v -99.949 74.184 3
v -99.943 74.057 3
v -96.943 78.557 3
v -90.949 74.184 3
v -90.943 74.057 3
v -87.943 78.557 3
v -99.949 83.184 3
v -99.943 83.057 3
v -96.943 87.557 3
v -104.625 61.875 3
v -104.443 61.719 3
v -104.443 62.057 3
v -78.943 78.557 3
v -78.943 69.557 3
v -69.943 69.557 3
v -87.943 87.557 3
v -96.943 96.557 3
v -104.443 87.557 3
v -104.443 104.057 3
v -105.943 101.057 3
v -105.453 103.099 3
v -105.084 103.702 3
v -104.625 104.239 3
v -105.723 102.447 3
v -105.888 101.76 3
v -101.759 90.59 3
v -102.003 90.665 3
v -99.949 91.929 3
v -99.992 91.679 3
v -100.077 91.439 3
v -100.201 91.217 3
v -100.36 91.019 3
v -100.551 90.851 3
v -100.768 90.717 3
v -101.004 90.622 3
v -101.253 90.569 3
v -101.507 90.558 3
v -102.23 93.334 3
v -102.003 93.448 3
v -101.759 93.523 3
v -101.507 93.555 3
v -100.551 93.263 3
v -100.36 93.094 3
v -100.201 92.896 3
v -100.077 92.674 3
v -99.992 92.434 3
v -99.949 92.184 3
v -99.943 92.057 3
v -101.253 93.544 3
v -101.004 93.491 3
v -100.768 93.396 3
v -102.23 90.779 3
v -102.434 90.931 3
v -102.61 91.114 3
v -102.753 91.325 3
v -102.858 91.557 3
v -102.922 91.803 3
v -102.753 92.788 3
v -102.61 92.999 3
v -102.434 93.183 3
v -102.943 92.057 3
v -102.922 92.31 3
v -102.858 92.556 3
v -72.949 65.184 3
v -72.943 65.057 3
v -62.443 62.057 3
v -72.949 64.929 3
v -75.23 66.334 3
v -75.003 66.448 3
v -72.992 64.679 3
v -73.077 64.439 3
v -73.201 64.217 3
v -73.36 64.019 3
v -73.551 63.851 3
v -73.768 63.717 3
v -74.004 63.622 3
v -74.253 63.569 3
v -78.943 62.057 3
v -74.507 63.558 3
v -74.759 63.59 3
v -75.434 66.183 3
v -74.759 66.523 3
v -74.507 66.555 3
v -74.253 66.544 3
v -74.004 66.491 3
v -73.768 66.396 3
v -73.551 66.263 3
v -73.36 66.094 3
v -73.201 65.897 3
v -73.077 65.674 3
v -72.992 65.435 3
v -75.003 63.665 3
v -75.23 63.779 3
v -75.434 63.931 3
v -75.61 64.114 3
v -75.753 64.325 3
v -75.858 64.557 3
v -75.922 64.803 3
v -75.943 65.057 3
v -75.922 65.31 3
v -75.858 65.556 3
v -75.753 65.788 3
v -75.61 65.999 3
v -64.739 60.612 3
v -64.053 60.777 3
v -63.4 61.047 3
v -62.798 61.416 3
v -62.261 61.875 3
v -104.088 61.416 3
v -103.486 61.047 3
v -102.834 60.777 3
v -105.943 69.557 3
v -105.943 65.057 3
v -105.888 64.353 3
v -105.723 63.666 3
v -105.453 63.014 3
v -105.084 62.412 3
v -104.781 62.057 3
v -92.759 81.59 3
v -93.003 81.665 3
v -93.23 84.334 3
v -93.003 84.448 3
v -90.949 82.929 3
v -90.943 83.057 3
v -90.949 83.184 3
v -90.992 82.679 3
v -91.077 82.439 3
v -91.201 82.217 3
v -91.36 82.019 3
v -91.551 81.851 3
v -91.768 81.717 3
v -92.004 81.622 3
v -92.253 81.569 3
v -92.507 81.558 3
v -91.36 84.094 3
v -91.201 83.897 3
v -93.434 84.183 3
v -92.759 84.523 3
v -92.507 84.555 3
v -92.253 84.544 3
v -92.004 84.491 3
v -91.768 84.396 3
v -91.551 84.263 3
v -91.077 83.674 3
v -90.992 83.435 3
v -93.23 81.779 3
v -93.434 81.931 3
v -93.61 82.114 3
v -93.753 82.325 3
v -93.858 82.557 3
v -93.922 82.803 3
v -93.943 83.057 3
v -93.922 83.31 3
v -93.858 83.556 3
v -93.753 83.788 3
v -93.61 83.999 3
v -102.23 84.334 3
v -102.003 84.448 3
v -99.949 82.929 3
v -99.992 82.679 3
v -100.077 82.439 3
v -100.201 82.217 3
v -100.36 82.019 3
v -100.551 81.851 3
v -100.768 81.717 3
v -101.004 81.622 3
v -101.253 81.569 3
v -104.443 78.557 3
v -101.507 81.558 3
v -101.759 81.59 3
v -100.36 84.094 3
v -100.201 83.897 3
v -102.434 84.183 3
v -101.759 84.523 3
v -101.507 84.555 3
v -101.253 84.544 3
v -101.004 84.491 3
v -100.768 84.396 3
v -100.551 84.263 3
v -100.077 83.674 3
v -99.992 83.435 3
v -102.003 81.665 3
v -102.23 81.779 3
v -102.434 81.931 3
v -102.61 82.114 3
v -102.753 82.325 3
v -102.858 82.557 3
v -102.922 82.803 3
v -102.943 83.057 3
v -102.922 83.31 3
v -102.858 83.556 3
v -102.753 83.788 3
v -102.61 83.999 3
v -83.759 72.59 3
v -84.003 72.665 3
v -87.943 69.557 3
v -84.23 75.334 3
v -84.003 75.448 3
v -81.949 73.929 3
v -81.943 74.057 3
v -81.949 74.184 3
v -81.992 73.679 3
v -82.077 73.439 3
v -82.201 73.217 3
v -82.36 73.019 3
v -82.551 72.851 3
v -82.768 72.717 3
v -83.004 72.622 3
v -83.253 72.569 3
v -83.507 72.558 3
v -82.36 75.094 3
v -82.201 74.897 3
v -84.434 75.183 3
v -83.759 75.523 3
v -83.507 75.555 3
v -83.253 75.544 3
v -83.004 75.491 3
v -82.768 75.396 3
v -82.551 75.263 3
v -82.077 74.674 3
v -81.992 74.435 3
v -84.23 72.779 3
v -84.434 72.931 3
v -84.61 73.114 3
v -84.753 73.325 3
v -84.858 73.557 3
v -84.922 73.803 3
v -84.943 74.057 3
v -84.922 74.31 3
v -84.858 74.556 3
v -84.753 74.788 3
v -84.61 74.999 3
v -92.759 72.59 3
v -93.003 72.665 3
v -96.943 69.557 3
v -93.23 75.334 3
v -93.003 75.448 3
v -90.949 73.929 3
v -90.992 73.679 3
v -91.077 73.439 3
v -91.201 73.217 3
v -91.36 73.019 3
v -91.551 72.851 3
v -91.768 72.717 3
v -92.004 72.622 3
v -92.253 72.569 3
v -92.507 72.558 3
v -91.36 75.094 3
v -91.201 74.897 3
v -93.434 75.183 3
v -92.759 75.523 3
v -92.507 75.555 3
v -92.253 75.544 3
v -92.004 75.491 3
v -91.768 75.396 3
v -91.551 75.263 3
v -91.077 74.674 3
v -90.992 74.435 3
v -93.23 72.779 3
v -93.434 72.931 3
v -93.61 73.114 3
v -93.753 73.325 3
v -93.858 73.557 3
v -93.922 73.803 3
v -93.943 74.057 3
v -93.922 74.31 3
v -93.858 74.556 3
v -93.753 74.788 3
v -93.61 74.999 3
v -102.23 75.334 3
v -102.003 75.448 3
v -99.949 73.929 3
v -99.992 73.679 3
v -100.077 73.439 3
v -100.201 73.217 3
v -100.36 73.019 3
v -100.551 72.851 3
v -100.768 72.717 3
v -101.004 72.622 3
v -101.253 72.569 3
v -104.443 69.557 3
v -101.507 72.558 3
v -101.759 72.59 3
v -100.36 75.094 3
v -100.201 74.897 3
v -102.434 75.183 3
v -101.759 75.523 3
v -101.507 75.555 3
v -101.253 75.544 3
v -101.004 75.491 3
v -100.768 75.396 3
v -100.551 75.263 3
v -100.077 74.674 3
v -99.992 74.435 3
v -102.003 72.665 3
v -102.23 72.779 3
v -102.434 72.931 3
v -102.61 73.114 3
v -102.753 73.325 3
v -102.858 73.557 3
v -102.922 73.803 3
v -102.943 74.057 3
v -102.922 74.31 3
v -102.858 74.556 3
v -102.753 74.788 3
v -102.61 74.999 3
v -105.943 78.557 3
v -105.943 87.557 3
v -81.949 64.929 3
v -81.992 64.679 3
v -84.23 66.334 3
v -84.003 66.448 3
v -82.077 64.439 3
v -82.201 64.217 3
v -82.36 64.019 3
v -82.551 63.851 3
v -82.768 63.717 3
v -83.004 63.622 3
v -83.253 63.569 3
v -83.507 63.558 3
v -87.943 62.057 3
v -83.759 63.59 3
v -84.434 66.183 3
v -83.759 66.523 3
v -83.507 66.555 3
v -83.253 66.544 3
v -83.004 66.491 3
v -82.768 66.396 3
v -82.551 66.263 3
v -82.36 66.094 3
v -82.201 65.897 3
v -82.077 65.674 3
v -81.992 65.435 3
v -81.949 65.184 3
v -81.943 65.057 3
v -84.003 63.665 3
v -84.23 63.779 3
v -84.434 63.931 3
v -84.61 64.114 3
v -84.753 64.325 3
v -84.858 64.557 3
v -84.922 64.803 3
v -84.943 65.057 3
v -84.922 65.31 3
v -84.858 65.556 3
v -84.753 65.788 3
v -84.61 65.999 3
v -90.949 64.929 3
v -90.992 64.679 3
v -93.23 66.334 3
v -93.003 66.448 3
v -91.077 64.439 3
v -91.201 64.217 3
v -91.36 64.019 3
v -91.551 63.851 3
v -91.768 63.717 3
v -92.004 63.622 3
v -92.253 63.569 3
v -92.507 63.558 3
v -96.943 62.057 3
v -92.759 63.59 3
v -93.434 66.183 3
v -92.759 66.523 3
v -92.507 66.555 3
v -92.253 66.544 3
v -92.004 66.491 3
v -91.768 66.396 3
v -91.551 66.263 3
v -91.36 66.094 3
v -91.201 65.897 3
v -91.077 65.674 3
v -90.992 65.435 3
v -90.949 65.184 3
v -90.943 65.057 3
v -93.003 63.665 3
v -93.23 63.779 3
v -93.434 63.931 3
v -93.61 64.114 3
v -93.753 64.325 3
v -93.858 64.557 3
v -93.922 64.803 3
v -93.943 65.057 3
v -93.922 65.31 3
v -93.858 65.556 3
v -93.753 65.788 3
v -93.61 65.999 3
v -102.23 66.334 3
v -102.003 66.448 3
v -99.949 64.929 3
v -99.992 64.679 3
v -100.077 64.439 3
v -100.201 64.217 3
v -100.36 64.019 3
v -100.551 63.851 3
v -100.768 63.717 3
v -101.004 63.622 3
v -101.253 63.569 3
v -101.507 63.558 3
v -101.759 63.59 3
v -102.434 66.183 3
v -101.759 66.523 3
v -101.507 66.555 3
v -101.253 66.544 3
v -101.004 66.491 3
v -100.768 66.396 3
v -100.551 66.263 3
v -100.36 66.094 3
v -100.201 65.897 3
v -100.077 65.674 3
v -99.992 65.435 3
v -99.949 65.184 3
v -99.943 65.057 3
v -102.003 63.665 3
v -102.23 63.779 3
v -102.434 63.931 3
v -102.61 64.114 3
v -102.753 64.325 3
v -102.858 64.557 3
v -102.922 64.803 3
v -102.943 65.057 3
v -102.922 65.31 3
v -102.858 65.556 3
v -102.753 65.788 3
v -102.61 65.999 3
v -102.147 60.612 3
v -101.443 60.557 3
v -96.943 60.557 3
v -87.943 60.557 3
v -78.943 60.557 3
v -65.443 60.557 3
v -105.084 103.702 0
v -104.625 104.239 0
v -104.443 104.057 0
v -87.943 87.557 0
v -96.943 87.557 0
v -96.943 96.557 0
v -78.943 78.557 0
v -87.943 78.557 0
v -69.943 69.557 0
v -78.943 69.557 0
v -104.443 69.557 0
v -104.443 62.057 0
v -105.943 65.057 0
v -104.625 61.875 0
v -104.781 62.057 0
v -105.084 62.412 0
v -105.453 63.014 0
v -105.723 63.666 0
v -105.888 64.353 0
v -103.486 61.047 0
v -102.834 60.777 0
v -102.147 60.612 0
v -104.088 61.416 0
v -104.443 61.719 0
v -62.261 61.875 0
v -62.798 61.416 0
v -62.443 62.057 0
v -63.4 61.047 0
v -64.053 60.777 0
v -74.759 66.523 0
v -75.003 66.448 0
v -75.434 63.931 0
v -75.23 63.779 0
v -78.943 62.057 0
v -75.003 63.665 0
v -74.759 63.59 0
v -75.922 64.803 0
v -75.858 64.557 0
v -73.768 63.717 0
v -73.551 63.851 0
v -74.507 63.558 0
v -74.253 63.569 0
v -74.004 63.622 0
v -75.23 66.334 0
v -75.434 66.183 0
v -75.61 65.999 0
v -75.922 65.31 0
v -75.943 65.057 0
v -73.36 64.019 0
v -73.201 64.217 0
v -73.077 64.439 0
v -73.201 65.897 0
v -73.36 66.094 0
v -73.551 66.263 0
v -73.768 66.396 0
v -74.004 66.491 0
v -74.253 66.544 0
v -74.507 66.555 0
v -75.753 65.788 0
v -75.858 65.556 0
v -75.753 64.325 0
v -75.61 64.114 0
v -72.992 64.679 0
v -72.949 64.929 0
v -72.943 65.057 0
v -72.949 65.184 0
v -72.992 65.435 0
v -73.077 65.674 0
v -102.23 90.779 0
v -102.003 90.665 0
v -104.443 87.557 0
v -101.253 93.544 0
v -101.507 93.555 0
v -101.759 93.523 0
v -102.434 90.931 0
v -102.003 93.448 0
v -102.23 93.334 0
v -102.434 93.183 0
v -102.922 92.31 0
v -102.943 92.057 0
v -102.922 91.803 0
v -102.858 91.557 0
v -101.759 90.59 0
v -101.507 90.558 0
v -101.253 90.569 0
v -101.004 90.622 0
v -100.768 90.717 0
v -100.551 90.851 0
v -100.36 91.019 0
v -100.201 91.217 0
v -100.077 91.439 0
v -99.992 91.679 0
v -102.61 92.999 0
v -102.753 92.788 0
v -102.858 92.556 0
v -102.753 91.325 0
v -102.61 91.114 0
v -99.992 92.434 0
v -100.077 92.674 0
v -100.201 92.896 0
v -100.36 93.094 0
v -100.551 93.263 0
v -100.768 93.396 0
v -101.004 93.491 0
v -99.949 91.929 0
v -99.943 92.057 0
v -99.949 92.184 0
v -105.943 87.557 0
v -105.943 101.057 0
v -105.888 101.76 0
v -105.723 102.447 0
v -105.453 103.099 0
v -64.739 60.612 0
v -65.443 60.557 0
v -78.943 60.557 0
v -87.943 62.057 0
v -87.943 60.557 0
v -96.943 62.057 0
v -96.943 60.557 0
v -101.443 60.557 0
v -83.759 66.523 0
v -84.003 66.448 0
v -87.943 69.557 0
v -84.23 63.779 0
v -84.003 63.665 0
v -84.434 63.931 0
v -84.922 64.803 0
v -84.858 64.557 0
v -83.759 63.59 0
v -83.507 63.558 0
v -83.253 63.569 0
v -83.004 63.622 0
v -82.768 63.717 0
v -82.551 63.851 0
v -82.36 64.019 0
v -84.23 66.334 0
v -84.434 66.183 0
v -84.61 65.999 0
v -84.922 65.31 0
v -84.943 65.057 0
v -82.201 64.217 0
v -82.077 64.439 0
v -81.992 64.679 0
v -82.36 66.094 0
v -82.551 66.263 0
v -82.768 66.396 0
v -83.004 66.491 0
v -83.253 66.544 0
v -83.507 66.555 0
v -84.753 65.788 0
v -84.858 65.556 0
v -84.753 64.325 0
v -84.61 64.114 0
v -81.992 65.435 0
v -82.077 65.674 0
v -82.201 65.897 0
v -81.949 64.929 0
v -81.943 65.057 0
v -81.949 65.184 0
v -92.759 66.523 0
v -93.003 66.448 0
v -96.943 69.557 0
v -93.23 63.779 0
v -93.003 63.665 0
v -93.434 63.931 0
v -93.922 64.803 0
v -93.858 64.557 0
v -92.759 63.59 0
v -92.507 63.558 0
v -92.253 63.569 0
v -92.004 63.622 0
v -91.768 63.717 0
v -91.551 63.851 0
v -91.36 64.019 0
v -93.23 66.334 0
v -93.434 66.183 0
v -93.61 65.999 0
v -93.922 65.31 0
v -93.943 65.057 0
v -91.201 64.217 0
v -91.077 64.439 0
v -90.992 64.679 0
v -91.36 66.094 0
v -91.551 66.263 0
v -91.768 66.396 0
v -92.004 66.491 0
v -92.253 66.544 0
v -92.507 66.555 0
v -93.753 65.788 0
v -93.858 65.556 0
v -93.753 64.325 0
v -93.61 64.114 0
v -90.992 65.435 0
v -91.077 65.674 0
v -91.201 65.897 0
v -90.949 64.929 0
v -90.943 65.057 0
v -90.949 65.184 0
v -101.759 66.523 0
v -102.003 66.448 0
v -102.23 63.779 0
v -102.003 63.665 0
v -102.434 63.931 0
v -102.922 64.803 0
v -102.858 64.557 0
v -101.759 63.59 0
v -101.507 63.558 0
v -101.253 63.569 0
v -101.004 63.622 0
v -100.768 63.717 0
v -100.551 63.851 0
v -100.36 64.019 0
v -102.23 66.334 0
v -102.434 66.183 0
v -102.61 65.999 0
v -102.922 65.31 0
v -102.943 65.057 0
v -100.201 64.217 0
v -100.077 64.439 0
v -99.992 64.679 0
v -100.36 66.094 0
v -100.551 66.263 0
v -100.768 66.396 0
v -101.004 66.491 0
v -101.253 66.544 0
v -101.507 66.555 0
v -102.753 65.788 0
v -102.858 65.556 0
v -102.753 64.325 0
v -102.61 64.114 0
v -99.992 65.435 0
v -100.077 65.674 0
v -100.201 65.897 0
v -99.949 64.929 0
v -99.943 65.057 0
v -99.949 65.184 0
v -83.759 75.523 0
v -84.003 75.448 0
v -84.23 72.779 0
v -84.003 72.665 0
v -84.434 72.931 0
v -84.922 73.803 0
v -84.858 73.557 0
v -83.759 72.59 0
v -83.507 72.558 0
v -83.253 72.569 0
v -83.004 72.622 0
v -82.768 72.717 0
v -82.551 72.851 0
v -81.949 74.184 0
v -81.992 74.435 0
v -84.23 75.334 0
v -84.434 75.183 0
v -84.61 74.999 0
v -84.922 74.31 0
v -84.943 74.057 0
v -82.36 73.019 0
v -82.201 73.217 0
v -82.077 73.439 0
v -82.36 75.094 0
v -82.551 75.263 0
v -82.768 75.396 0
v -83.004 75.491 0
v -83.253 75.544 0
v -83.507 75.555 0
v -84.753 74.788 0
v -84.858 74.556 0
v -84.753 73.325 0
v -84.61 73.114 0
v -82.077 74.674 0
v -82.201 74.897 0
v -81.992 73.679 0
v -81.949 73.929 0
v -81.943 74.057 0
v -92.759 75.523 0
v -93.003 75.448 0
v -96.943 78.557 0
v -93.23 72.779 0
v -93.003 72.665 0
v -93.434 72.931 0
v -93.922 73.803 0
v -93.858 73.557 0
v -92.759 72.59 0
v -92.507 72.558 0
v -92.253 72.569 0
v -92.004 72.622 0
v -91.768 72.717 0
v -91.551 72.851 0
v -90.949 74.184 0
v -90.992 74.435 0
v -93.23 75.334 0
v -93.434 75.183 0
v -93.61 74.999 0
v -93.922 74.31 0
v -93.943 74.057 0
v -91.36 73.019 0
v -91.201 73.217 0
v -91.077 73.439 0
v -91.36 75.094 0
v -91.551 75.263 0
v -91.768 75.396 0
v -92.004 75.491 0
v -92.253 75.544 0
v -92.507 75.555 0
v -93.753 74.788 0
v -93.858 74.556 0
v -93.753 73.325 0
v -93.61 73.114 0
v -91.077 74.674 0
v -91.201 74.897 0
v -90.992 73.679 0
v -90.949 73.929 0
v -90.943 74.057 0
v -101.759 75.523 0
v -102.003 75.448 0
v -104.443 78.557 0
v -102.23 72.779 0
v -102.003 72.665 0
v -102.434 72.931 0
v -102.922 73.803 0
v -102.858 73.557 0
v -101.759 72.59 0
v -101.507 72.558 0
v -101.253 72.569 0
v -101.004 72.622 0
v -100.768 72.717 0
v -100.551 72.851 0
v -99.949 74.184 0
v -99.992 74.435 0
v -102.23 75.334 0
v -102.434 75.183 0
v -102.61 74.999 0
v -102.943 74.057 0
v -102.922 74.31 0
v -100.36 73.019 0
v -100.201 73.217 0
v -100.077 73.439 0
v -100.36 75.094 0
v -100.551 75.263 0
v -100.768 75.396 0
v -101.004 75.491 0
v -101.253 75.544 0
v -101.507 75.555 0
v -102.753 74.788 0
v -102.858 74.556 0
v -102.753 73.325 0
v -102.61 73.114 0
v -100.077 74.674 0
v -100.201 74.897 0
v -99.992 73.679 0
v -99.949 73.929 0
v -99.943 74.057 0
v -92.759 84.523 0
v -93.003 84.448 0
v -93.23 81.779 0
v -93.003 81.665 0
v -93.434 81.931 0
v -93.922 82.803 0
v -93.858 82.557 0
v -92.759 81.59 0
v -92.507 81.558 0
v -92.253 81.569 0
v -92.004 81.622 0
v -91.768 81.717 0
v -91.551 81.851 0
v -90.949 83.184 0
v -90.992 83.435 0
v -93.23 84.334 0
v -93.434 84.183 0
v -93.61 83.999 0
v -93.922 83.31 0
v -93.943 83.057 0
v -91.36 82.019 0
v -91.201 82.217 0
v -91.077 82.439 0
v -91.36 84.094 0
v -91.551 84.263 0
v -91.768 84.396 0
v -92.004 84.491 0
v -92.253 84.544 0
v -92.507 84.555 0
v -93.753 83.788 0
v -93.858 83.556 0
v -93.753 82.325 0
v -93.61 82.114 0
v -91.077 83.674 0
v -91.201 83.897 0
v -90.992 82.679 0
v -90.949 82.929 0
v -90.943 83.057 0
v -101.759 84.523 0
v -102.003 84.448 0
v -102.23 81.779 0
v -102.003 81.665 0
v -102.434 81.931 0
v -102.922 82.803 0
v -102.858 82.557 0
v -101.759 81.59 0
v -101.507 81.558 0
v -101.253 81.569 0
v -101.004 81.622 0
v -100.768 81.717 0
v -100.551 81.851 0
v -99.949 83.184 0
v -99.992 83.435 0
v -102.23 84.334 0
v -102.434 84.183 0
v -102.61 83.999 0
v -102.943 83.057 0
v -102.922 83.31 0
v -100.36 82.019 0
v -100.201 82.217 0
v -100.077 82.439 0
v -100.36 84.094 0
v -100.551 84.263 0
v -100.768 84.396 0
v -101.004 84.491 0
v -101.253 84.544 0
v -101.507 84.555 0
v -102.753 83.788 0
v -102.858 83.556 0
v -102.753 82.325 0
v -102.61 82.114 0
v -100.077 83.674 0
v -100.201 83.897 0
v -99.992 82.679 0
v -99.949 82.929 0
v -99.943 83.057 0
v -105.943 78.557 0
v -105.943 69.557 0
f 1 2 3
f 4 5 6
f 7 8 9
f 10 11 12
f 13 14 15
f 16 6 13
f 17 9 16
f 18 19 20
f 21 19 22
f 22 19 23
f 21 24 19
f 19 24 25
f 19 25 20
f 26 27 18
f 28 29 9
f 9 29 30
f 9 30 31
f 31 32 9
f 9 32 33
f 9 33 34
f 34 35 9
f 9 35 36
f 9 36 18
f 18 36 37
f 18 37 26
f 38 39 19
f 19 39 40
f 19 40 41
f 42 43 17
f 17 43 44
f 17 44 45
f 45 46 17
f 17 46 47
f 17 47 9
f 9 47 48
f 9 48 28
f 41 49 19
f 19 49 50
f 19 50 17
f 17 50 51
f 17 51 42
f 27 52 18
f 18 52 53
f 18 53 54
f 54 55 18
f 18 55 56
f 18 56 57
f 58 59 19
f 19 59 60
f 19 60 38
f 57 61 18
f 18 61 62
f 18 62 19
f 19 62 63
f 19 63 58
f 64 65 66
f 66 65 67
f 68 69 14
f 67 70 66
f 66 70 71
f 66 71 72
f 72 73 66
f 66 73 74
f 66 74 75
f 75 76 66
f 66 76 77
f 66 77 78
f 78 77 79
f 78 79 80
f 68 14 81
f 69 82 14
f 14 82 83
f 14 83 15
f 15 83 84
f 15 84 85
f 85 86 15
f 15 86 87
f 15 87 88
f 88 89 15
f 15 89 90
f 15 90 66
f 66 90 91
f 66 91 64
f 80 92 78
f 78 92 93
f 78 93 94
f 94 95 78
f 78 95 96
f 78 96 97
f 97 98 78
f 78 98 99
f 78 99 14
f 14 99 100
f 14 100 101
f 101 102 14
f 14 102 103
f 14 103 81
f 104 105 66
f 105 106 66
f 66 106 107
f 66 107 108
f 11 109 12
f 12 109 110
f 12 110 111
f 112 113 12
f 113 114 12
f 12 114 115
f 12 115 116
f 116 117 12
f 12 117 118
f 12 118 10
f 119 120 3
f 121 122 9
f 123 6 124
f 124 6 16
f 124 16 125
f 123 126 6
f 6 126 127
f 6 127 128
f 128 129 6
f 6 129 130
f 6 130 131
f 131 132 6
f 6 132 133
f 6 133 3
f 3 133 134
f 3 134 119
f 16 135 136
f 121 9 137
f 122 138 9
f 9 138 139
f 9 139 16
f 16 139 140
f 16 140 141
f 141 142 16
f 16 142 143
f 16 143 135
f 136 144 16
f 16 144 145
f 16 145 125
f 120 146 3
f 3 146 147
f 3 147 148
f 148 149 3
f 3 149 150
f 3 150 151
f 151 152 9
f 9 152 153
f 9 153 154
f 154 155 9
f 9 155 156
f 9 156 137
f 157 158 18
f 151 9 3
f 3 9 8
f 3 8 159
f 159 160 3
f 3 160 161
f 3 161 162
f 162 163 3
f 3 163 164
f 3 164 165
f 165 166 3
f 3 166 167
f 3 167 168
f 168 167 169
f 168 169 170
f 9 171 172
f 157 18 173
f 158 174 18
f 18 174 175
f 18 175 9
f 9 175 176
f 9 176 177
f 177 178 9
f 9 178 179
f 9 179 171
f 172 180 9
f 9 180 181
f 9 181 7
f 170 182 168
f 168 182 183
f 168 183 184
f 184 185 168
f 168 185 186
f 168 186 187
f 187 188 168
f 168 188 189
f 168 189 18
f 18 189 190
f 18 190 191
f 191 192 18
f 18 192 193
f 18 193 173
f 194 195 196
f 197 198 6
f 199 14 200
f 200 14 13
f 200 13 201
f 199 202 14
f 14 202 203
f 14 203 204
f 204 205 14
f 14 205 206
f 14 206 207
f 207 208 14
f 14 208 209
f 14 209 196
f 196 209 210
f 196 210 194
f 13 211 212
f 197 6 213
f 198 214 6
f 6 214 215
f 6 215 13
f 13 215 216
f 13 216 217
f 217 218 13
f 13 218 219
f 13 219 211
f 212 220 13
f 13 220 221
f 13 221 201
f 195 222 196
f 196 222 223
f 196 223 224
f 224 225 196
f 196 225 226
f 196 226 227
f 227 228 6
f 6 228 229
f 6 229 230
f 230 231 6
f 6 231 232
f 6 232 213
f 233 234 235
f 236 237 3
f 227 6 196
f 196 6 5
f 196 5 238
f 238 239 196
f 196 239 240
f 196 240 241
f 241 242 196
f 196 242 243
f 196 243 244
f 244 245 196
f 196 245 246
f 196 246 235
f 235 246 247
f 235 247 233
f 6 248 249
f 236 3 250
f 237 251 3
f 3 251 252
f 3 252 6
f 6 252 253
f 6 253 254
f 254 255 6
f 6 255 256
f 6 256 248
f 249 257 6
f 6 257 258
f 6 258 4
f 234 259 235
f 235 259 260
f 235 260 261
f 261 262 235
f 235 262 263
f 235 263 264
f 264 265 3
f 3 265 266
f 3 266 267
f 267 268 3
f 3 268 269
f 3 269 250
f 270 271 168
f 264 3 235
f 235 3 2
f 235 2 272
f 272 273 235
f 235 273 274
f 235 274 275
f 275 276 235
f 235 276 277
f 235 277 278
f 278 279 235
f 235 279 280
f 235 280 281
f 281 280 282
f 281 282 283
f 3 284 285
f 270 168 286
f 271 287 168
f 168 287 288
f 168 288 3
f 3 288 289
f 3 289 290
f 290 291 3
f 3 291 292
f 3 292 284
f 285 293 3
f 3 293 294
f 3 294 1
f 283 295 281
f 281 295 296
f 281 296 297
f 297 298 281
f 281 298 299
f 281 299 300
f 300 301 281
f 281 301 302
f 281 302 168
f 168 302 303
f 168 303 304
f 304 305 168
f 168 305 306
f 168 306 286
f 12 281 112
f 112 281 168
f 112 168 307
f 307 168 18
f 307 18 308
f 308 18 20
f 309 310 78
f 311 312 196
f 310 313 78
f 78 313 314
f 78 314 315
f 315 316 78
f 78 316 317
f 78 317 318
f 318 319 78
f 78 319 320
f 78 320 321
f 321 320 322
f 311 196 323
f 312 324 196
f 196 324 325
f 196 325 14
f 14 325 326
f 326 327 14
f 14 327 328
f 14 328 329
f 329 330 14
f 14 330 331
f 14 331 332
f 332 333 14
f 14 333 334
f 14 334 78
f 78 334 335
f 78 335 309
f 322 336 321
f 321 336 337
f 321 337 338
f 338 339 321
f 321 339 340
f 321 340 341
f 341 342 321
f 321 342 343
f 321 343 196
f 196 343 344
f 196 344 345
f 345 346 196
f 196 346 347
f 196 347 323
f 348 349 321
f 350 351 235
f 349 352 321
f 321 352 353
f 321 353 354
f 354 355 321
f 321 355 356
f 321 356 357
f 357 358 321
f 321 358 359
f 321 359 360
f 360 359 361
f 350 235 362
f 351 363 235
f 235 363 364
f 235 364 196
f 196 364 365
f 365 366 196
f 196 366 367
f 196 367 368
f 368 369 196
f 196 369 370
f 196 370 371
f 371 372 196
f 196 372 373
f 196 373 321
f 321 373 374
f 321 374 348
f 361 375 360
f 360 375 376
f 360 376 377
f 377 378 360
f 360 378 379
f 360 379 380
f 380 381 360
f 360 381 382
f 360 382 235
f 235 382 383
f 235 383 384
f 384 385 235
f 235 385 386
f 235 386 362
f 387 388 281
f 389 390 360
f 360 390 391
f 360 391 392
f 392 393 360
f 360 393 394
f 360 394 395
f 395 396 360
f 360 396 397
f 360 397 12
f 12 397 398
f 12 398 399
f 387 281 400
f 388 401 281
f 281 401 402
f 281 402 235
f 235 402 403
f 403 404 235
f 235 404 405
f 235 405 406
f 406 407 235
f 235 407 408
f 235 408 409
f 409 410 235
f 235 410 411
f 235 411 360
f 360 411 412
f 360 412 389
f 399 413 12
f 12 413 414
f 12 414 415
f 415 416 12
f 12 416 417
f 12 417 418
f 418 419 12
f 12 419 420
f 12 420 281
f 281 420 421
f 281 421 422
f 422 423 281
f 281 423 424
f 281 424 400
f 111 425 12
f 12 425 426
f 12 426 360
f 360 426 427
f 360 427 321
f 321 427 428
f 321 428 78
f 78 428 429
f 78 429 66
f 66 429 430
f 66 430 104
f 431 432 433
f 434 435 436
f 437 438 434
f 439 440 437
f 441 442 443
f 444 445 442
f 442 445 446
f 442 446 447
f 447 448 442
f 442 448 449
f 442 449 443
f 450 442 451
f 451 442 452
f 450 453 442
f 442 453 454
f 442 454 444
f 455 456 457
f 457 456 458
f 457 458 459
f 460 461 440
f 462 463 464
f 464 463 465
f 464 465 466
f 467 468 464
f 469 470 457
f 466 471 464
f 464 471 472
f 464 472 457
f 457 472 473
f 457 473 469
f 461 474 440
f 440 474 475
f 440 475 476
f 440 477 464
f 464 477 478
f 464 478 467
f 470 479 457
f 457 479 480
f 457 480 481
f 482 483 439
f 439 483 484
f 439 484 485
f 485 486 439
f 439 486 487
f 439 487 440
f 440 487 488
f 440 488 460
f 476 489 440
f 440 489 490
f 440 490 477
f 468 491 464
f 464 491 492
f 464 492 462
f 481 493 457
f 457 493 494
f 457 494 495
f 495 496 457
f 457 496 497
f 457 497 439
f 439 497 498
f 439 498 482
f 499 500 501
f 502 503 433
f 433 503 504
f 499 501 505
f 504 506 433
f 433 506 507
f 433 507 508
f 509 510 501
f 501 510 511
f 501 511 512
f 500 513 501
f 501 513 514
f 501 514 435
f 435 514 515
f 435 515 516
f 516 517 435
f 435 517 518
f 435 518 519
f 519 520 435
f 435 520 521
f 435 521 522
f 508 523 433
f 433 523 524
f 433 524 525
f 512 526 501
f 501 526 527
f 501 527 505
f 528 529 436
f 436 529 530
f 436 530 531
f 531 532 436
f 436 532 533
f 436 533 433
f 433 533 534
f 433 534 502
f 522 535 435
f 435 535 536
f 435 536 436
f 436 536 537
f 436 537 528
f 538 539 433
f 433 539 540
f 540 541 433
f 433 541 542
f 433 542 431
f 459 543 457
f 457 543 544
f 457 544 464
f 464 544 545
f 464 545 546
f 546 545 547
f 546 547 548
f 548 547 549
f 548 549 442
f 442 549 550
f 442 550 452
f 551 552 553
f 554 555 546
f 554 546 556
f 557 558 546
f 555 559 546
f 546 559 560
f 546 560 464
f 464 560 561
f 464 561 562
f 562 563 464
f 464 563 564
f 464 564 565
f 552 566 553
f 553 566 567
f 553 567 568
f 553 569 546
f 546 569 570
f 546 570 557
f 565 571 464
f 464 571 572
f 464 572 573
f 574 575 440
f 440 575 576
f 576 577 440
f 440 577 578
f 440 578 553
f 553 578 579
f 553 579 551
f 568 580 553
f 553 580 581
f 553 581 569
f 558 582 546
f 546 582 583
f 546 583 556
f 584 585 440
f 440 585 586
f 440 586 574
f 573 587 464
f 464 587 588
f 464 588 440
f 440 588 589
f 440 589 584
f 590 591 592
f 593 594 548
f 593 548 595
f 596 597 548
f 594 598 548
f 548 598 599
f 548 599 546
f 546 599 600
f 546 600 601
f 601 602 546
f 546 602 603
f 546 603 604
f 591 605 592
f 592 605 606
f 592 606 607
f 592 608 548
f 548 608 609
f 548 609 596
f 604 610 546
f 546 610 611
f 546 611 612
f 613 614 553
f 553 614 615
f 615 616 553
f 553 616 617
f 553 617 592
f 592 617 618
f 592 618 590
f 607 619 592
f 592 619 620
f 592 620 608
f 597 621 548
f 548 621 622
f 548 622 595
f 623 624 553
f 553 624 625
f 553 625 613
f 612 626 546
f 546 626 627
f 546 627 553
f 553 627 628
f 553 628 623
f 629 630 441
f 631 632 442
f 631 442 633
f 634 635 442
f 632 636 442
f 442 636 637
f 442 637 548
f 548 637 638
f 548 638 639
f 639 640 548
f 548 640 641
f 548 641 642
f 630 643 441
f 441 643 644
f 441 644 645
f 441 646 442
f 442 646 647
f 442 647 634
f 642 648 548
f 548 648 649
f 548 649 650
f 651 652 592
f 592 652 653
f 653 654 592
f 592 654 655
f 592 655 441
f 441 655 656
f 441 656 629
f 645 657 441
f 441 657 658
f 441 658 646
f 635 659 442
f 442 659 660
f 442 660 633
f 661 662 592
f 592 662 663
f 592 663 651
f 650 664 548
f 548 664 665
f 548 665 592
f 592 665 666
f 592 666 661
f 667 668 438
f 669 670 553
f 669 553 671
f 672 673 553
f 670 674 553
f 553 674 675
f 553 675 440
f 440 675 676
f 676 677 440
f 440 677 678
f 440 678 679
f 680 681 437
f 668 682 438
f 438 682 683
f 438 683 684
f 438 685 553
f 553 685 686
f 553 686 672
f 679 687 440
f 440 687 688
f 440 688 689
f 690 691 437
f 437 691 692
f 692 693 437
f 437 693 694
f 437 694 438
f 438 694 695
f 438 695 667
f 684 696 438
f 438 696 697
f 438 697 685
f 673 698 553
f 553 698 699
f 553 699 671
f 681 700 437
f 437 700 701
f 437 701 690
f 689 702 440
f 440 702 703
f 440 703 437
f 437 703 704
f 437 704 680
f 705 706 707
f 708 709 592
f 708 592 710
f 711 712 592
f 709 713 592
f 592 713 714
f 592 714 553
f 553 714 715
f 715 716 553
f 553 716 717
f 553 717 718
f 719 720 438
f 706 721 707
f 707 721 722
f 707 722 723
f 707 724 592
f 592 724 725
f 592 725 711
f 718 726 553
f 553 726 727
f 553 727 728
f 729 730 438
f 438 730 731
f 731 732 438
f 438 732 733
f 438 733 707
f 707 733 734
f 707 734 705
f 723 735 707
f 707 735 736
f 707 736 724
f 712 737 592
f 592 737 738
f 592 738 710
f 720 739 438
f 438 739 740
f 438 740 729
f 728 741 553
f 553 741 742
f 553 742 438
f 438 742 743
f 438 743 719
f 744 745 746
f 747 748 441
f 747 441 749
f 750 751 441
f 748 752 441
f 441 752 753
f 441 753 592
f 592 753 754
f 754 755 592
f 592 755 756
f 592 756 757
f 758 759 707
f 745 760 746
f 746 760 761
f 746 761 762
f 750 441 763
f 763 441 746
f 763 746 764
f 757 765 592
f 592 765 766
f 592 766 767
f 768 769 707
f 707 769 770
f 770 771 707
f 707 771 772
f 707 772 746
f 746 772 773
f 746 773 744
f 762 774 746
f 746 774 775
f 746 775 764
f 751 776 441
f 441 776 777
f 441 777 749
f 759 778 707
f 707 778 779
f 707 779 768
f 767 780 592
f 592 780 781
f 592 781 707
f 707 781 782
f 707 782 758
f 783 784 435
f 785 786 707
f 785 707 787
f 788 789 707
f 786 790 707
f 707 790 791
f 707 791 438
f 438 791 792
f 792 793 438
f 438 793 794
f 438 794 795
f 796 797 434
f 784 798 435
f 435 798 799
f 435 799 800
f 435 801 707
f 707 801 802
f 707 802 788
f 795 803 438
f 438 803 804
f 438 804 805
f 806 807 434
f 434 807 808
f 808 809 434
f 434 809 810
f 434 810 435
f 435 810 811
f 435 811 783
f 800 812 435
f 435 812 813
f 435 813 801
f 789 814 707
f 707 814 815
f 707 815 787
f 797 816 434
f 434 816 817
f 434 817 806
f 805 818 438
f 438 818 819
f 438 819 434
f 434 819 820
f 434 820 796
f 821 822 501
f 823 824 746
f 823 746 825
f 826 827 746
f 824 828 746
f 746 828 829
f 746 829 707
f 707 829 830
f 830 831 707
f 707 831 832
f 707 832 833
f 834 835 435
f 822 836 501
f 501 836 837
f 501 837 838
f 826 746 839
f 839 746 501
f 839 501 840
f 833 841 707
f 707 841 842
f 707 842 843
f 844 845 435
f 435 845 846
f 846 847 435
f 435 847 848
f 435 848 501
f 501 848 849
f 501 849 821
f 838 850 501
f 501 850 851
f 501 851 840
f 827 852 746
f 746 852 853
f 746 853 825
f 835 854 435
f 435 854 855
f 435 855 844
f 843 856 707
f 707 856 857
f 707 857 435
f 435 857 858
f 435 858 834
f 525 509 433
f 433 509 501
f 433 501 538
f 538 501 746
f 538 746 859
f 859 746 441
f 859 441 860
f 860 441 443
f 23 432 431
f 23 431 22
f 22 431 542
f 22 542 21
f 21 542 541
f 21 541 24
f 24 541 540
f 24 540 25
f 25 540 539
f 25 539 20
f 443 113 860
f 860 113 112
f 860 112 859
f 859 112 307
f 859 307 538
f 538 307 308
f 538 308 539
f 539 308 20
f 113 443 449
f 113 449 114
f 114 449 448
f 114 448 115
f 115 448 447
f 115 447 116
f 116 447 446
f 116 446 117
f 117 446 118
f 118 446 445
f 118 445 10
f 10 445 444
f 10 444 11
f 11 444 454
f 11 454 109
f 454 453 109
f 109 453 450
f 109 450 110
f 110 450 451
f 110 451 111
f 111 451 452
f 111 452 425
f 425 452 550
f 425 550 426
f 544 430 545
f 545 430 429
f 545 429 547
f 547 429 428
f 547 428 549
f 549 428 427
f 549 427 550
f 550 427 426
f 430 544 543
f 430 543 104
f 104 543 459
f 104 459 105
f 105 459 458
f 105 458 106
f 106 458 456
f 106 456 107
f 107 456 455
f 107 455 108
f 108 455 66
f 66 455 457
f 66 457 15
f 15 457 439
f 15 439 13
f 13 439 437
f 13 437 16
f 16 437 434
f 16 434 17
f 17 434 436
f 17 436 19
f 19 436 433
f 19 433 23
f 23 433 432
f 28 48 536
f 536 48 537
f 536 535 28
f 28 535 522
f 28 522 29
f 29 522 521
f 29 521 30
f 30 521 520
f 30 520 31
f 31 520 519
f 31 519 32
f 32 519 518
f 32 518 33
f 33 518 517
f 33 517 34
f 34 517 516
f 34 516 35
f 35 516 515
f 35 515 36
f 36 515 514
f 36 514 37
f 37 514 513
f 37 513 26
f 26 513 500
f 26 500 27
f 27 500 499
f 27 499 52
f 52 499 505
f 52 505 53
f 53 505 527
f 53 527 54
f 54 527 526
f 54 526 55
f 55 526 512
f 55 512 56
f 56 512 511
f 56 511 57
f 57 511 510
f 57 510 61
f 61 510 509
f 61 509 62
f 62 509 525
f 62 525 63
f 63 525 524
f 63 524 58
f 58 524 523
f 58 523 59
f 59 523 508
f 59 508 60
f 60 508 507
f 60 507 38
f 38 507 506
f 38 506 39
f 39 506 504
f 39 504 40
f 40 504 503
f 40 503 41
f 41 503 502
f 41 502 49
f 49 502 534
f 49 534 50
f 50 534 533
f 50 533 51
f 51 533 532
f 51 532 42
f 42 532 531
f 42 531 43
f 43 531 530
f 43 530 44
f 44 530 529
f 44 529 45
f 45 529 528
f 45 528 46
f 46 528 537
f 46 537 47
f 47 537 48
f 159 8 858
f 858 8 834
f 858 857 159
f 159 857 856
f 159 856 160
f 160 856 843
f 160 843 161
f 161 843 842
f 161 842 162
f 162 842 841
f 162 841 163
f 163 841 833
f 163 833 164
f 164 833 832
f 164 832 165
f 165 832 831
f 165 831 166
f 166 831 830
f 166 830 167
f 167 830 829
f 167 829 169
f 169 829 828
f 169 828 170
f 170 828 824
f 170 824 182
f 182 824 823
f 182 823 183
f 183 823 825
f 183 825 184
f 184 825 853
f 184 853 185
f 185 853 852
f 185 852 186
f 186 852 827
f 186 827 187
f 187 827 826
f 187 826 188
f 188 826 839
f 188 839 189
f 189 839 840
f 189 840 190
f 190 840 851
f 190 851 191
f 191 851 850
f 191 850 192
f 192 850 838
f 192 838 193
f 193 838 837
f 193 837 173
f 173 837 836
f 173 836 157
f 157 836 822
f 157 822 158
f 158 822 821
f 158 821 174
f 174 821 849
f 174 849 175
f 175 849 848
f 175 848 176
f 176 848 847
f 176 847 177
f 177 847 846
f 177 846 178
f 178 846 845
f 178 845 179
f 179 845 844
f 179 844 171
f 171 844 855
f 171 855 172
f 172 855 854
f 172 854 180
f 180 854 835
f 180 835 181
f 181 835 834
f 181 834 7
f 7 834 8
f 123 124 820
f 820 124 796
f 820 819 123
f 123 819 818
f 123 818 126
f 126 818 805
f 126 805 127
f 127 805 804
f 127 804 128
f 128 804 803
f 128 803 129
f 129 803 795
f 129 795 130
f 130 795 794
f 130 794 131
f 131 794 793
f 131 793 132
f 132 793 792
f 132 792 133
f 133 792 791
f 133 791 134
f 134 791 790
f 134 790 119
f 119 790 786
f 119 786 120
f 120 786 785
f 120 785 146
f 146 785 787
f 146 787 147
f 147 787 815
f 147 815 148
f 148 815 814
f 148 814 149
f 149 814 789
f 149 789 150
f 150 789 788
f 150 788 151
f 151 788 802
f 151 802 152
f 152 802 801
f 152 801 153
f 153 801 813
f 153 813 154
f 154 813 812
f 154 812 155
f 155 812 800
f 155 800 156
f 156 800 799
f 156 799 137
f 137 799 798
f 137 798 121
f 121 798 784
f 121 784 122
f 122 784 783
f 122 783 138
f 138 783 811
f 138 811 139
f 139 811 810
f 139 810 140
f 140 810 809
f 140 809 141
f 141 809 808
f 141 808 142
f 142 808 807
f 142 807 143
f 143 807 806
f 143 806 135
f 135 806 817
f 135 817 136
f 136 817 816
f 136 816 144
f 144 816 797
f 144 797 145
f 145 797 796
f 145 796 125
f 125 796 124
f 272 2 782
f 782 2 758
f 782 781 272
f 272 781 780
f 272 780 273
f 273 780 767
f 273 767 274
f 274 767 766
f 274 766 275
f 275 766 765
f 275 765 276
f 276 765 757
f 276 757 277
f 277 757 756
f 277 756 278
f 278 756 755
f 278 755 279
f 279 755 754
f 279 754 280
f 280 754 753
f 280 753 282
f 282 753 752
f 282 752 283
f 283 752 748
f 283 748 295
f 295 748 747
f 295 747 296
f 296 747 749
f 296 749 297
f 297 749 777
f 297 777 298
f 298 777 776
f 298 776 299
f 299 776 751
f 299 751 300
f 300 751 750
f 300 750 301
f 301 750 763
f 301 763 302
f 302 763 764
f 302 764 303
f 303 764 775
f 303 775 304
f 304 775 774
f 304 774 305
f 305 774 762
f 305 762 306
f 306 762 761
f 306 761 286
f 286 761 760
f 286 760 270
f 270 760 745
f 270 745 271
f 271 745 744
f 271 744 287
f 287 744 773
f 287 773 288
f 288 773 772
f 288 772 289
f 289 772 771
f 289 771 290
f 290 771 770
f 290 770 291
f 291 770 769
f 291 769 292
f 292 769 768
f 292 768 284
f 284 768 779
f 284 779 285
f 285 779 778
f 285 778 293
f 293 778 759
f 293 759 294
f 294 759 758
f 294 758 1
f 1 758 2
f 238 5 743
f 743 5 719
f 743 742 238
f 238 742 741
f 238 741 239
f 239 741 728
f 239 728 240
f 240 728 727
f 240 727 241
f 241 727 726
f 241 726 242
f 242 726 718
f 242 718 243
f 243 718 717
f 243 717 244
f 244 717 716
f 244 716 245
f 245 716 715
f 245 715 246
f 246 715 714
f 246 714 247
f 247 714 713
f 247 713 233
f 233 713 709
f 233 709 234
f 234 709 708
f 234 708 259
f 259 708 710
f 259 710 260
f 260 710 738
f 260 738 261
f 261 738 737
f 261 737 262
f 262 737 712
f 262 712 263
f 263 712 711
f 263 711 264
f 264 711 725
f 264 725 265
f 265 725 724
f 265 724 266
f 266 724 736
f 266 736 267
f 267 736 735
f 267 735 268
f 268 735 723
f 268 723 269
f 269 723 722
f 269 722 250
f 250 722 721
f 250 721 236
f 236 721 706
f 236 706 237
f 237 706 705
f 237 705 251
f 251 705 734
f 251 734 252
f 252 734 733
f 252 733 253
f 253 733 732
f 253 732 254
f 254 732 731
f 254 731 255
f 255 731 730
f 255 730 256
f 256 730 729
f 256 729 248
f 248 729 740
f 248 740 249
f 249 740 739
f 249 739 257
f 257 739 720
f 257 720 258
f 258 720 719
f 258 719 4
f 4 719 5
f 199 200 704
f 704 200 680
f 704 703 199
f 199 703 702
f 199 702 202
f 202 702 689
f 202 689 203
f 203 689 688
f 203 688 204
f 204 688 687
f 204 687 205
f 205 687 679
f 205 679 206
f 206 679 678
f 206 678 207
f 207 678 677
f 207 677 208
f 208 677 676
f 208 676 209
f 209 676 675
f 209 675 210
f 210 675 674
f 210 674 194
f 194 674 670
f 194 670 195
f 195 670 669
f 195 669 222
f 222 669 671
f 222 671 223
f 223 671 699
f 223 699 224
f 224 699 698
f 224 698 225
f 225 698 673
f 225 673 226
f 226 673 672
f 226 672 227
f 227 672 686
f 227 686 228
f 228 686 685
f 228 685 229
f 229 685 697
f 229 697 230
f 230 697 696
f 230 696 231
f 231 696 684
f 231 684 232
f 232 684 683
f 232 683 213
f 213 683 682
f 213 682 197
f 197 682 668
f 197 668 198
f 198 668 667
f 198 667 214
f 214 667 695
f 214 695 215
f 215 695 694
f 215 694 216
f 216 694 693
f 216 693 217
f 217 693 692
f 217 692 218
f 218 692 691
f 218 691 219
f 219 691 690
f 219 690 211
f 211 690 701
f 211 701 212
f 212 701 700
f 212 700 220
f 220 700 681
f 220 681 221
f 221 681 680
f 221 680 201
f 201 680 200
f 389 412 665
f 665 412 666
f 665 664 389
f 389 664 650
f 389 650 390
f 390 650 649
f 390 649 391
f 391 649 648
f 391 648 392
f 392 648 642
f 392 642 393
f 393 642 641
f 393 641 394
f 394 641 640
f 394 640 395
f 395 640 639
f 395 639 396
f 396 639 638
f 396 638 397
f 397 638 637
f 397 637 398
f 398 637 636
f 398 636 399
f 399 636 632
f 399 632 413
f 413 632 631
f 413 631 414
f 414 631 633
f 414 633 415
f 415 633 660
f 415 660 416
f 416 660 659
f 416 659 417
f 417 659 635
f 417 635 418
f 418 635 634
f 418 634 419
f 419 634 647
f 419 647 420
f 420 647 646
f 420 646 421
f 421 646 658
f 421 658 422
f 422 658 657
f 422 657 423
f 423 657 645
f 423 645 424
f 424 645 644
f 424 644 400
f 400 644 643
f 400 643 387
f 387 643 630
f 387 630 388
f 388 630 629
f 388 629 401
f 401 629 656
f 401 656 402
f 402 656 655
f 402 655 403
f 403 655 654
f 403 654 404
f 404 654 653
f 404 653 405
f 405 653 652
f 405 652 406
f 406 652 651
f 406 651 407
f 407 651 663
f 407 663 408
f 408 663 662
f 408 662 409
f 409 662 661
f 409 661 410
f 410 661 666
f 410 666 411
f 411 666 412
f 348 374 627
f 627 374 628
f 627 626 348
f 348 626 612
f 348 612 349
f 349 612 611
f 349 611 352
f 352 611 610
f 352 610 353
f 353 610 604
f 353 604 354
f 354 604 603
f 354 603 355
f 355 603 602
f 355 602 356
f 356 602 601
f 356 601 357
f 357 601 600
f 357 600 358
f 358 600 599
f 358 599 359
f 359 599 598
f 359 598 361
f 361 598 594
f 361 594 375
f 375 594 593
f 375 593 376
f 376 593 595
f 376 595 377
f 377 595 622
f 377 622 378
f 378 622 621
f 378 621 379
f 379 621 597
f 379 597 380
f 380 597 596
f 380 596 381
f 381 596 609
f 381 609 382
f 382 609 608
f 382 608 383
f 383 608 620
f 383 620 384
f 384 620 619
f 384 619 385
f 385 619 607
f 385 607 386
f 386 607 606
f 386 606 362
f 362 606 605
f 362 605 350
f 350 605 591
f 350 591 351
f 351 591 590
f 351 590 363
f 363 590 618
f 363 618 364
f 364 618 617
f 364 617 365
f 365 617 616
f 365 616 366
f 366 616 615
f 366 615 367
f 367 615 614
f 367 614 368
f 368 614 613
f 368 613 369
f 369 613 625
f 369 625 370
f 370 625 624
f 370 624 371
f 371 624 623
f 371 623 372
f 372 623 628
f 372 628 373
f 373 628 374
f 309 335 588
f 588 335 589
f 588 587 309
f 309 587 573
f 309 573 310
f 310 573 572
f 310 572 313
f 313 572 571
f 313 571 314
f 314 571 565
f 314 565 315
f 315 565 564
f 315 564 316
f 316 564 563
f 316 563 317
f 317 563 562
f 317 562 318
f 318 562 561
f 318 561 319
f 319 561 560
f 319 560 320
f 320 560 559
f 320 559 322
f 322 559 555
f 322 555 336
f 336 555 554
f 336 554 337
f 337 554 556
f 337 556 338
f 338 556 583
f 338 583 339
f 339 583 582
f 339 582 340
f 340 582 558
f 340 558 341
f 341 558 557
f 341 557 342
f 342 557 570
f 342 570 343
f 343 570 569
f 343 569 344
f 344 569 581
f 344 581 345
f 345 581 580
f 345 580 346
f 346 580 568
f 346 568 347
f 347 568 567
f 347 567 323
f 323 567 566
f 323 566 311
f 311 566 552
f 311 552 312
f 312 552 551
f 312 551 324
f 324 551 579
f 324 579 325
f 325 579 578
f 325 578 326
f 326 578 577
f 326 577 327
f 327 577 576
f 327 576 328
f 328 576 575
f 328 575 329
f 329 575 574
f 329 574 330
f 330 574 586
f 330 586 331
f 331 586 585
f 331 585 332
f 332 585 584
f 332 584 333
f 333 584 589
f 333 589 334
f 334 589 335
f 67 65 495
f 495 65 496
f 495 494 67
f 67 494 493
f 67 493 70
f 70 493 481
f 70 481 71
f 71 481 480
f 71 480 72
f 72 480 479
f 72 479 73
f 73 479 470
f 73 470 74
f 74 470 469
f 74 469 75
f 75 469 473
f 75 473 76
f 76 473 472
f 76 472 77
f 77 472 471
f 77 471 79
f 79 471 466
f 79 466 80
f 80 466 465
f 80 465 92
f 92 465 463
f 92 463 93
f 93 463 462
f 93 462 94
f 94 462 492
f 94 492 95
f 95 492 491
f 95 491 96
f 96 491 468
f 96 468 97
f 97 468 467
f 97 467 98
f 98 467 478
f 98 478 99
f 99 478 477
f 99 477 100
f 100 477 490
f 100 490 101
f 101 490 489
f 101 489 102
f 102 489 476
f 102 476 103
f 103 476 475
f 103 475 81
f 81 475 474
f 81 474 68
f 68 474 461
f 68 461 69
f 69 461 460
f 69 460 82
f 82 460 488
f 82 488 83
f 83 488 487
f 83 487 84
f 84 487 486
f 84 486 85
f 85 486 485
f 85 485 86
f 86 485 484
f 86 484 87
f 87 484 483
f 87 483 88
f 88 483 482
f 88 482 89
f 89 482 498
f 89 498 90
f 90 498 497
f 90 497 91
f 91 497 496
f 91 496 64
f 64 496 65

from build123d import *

# Parameters (mm, degrees)
MODEL_R                 = 1.5
SALIENTE_EXTRUIR1_DEPTH = 3


with BuildPart() as part:
    # Model → Saliente-Extruir1 (new body)
    with BuildSketch(Plane.XY):
        with BuildLine():
            Line((-105.943383637, 101.056539338), (-105.943383637, 65.056539338))
            ThreePointArc((-105.943383637, 65.056539338), (-104.625364152, 61.874558823), (-101.443383637, 60.556539338))
            Line((-101.443383637, 60.556539338), (-65.443383637, 60.556539338))
            ThreePointArc((-65.443383637, 60.556539338), (-63.721308191, 60.899081442), (-62.261403122, 61.874558823))
            Line((-62.261403122, 61.874558823), (-104.625364152, 104.238519853))
            ThreePointArc((-104.625364152, 104.238519853), (-105.600841533, 102.778614784), (-105.943383637, 101.056539338))
        make_face()
        with Locations((-101.443383637, 92.056539338)):
            Circle(MODEL_R, mode=Mode.SUBTRACT)
        with Locations((-101.443383637, 83.056539338)):
            Circle(MODEL_R, mode=Mode.SUBTRACT)
        with Locations((-92.443383637, 83.056539338)):
            Circle(MODEL_R, mode=Mode.SUBTRACT)
        with Locations((-101.443383637, 74.056539338)):
            Circle(MODEL_R, mode=Mode.SUBTRACT)
        with Locations((-92.443383637, 74.056539338)):
            Circle(MODEL_R, mode=Mode.SUBTRACT)
        with Locations((-83.443383637, 74.056539338)):
            Circle(MODEL_R, mode=Mode.SUBTRACT)
        with Locations((-101.443383637, 65.056539338)):
            Circle(MODEL_R, mode=Mode.SUBTRACT)
        with Locations((-92.443383637, 65.056539338)):
            Circle(MODEL_R, mode=Mode.SUBTRACT)
        with Locations((-83.443383637, 65.056539338)):
            Circle(MODEL_R, mode=Mode.SUBTRACT)
        with Locations((-74.443383637, 65.056539338)):
            Circle(MODEL_R, mode=Mode.SUBTRACT)
    extrude(amount=SALIENTE_EXTRUIR1_DEPTH)


solid = part.part
